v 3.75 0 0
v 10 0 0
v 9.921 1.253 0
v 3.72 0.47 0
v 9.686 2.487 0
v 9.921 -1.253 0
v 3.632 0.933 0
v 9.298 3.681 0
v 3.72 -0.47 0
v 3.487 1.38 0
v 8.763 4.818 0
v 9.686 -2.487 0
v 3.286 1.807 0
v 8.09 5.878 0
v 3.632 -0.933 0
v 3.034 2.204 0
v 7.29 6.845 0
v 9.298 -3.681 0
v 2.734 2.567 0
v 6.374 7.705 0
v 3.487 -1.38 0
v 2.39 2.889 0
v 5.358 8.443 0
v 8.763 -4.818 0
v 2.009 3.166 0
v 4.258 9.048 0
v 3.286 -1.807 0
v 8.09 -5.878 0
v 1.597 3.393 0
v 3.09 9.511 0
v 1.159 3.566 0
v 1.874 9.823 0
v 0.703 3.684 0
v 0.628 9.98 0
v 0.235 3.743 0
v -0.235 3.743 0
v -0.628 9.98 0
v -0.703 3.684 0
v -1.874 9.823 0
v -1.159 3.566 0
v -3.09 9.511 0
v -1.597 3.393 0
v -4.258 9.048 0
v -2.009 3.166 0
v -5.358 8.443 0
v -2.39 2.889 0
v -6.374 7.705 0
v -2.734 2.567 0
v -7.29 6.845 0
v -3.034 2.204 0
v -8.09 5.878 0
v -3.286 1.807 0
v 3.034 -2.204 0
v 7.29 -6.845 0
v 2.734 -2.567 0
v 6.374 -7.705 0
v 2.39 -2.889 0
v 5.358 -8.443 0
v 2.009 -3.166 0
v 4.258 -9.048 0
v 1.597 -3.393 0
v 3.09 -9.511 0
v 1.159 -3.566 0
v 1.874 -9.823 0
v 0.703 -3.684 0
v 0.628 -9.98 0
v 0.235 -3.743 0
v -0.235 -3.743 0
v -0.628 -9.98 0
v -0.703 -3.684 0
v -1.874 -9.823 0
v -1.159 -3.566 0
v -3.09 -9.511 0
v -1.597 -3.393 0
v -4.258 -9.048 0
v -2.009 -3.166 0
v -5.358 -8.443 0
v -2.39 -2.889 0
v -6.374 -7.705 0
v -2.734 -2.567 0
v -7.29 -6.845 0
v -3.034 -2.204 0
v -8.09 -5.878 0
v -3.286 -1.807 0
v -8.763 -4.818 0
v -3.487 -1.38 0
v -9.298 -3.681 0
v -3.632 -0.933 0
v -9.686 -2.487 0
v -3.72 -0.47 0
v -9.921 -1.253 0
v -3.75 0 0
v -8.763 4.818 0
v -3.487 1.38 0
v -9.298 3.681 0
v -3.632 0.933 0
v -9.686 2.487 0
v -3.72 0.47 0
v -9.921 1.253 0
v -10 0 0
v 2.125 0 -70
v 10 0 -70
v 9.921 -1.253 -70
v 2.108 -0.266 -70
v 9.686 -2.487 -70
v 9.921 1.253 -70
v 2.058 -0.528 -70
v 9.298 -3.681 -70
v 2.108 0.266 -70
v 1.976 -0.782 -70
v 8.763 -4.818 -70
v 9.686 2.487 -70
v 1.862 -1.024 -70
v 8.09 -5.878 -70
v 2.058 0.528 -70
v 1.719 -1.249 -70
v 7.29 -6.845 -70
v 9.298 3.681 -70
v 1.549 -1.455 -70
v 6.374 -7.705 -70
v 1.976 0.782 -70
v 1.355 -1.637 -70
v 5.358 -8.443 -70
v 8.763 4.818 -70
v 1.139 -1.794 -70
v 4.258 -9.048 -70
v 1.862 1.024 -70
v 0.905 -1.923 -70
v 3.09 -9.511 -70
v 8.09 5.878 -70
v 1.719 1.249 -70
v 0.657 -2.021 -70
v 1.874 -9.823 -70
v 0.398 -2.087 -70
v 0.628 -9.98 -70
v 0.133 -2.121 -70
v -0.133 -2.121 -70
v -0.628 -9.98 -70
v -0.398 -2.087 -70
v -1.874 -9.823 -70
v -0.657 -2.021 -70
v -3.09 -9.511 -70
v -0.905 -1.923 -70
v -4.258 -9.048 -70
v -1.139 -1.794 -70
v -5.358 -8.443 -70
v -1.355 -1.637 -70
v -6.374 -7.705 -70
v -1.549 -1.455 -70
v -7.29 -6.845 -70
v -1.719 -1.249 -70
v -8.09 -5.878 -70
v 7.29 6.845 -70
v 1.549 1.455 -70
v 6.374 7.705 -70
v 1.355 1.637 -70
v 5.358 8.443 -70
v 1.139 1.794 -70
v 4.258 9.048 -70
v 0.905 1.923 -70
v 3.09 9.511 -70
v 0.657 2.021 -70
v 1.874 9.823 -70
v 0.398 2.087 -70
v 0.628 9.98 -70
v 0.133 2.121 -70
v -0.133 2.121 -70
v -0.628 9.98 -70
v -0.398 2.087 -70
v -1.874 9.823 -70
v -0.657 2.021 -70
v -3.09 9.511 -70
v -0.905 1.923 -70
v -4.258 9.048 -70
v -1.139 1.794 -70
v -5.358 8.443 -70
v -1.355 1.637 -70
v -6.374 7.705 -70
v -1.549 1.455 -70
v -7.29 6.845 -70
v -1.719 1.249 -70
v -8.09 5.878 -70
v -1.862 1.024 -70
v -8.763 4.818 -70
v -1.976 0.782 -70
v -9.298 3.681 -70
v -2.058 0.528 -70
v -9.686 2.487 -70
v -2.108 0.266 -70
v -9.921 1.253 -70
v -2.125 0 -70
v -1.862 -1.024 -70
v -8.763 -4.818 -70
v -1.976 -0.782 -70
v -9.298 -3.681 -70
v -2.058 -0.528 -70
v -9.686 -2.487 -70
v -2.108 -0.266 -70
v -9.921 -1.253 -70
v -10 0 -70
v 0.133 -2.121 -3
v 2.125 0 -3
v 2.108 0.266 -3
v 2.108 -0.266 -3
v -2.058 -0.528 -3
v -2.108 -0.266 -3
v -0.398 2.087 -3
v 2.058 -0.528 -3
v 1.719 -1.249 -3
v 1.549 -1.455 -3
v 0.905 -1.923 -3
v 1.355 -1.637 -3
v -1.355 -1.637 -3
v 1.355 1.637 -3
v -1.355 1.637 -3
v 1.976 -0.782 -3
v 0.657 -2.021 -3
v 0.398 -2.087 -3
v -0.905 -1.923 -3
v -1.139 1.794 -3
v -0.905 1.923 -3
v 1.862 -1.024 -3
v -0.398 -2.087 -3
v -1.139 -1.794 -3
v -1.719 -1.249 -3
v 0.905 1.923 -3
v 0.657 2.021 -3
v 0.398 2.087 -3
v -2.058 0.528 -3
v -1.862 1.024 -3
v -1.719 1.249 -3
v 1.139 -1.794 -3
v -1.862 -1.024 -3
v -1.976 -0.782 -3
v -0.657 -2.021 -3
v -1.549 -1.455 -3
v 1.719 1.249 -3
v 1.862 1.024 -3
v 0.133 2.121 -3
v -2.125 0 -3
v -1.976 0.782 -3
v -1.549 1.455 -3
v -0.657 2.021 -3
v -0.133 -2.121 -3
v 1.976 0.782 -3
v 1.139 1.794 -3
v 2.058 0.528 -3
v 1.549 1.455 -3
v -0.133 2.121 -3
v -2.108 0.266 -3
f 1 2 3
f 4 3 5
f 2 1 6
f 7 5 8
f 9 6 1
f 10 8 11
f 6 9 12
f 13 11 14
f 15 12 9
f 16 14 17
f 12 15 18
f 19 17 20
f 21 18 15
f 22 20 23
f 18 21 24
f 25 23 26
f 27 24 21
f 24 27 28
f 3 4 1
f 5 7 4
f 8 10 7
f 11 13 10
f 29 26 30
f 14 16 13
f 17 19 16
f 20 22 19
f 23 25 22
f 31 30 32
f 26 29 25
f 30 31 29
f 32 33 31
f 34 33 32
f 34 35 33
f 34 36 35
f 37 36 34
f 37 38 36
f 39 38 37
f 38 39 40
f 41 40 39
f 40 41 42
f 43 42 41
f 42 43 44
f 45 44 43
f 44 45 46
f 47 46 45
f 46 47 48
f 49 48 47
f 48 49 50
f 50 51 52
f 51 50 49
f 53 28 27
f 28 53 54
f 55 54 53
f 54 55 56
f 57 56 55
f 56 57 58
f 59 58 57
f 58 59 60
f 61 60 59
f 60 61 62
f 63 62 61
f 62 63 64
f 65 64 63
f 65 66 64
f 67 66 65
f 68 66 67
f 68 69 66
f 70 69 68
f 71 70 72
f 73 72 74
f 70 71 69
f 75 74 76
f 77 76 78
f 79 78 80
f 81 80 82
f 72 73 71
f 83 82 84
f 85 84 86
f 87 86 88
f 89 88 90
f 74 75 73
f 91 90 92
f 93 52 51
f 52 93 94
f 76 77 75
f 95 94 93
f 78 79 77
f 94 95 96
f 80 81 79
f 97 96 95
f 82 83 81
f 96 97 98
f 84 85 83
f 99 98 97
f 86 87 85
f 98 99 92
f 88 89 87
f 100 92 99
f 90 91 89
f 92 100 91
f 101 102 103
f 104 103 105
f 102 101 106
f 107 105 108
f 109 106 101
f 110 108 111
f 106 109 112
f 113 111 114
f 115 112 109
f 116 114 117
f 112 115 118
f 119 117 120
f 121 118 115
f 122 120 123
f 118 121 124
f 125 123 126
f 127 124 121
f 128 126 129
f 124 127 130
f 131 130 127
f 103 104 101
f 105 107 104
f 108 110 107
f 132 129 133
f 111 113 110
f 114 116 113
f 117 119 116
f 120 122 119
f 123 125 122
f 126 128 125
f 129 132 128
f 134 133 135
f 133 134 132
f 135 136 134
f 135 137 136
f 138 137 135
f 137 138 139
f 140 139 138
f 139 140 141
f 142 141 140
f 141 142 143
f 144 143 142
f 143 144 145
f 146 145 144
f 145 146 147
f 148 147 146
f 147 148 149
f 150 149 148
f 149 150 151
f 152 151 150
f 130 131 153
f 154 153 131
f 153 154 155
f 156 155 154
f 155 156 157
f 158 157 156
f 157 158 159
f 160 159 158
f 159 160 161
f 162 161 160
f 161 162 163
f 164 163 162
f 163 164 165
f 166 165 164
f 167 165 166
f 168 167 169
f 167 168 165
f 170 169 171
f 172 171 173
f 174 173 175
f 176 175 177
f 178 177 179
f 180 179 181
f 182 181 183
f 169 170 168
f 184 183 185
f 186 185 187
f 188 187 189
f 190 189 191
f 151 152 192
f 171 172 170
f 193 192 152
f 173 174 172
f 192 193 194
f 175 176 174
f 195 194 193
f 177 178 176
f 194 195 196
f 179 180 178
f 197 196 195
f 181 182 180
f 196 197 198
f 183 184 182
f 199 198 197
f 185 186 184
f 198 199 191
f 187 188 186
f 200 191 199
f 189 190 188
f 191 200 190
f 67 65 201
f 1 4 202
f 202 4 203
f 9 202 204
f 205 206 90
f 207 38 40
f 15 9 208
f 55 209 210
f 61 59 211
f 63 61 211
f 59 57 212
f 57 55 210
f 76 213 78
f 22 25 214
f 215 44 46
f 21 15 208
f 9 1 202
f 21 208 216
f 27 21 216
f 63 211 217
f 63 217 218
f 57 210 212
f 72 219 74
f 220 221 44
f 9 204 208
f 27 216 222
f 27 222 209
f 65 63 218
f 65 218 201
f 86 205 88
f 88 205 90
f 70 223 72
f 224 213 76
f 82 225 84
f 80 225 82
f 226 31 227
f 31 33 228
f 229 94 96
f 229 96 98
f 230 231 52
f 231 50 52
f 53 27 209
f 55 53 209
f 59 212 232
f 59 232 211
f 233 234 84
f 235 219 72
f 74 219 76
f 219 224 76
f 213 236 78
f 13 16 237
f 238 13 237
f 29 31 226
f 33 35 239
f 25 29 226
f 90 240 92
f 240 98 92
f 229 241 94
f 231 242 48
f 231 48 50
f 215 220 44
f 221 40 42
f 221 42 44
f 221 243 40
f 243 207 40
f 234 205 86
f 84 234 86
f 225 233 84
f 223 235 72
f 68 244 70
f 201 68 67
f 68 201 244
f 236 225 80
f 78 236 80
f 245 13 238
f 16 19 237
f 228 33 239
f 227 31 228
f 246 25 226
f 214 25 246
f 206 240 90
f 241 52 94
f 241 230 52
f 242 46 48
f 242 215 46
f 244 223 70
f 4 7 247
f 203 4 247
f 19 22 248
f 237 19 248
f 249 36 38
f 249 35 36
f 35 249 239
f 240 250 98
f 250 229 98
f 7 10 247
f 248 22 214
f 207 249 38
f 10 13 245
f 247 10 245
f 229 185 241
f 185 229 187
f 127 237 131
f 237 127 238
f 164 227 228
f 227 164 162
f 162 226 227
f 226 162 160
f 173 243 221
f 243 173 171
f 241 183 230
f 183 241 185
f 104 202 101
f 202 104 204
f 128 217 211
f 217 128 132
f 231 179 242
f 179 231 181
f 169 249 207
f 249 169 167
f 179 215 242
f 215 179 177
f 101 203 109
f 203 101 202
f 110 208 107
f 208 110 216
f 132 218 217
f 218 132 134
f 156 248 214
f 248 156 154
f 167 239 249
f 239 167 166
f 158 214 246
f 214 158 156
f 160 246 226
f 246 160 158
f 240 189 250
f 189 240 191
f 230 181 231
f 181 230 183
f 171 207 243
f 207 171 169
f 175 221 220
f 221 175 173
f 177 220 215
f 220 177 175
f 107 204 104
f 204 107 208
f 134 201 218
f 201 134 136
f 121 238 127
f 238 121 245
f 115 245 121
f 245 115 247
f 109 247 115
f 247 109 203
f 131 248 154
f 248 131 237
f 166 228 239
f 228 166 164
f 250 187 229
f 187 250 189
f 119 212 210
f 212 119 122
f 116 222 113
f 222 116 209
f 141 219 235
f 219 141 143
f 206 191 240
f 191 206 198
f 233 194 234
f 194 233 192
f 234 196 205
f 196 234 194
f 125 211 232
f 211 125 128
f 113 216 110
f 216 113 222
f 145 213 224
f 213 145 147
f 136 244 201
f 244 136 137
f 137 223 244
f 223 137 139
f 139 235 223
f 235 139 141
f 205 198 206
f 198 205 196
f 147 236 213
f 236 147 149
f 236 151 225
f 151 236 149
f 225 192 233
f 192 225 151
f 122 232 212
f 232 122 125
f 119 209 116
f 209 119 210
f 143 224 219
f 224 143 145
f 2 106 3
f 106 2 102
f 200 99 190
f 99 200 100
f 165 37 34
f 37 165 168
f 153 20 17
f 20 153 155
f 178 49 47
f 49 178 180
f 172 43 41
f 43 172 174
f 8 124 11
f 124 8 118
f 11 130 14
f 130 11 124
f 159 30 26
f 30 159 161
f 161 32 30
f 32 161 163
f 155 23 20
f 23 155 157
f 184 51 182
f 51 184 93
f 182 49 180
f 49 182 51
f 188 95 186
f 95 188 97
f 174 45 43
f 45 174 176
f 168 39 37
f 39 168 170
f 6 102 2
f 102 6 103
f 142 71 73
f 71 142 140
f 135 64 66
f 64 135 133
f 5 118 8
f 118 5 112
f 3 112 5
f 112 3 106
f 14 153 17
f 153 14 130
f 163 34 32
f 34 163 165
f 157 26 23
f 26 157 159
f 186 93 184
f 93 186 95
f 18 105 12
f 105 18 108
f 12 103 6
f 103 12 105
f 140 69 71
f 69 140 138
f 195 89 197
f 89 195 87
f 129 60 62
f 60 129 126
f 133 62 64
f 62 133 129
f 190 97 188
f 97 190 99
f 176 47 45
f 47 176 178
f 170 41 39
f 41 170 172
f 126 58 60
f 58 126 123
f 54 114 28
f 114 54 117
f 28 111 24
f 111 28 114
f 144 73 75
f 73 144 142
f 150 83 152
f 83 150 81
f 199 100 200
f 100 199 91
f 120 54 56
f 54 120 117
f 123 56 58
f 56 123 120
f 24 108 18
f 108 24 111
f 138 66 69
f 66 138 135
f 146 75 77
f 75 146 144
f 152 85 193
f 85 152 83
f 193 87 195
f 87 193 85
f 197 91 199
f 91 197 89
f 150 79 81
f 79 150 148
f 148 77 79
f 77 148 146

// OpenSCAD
$fn = 50;


difference() {
	union() {
		translate(v = [0, 0, -70.0000000000]) {
			cylinder(h = 70, r = 10.0000000000);
		}
		cylinder(h = 0, r = 16.0000000000);
	}
	union() {
		translate(v = [0, 0, 0]) {
			rotate(a = [0, 0, 0]) {
				difference() {
					union() {
						#translate(v = [0, 0, -70.0000000000]) {
							cylinder(h = 70, r = 2.0000000000);
						}
						#translate(v = [0, 0, -3]) {
							cylinder(h = 3, r = 10.0000000000, r1 = 2.1250000000, r2 = 3.7500000000);
						}
						#translate(v = [0, 0, -70.0000000000]) {
							cylinder(h = 70, r = 2.1250000000);
						}
						#translate(v = [0, 0, -70.0000000000]) {
							cylinder(h = 70, r = 2.0000000000);
						}
					}
					union();
				}
			}
		}
	}
}
